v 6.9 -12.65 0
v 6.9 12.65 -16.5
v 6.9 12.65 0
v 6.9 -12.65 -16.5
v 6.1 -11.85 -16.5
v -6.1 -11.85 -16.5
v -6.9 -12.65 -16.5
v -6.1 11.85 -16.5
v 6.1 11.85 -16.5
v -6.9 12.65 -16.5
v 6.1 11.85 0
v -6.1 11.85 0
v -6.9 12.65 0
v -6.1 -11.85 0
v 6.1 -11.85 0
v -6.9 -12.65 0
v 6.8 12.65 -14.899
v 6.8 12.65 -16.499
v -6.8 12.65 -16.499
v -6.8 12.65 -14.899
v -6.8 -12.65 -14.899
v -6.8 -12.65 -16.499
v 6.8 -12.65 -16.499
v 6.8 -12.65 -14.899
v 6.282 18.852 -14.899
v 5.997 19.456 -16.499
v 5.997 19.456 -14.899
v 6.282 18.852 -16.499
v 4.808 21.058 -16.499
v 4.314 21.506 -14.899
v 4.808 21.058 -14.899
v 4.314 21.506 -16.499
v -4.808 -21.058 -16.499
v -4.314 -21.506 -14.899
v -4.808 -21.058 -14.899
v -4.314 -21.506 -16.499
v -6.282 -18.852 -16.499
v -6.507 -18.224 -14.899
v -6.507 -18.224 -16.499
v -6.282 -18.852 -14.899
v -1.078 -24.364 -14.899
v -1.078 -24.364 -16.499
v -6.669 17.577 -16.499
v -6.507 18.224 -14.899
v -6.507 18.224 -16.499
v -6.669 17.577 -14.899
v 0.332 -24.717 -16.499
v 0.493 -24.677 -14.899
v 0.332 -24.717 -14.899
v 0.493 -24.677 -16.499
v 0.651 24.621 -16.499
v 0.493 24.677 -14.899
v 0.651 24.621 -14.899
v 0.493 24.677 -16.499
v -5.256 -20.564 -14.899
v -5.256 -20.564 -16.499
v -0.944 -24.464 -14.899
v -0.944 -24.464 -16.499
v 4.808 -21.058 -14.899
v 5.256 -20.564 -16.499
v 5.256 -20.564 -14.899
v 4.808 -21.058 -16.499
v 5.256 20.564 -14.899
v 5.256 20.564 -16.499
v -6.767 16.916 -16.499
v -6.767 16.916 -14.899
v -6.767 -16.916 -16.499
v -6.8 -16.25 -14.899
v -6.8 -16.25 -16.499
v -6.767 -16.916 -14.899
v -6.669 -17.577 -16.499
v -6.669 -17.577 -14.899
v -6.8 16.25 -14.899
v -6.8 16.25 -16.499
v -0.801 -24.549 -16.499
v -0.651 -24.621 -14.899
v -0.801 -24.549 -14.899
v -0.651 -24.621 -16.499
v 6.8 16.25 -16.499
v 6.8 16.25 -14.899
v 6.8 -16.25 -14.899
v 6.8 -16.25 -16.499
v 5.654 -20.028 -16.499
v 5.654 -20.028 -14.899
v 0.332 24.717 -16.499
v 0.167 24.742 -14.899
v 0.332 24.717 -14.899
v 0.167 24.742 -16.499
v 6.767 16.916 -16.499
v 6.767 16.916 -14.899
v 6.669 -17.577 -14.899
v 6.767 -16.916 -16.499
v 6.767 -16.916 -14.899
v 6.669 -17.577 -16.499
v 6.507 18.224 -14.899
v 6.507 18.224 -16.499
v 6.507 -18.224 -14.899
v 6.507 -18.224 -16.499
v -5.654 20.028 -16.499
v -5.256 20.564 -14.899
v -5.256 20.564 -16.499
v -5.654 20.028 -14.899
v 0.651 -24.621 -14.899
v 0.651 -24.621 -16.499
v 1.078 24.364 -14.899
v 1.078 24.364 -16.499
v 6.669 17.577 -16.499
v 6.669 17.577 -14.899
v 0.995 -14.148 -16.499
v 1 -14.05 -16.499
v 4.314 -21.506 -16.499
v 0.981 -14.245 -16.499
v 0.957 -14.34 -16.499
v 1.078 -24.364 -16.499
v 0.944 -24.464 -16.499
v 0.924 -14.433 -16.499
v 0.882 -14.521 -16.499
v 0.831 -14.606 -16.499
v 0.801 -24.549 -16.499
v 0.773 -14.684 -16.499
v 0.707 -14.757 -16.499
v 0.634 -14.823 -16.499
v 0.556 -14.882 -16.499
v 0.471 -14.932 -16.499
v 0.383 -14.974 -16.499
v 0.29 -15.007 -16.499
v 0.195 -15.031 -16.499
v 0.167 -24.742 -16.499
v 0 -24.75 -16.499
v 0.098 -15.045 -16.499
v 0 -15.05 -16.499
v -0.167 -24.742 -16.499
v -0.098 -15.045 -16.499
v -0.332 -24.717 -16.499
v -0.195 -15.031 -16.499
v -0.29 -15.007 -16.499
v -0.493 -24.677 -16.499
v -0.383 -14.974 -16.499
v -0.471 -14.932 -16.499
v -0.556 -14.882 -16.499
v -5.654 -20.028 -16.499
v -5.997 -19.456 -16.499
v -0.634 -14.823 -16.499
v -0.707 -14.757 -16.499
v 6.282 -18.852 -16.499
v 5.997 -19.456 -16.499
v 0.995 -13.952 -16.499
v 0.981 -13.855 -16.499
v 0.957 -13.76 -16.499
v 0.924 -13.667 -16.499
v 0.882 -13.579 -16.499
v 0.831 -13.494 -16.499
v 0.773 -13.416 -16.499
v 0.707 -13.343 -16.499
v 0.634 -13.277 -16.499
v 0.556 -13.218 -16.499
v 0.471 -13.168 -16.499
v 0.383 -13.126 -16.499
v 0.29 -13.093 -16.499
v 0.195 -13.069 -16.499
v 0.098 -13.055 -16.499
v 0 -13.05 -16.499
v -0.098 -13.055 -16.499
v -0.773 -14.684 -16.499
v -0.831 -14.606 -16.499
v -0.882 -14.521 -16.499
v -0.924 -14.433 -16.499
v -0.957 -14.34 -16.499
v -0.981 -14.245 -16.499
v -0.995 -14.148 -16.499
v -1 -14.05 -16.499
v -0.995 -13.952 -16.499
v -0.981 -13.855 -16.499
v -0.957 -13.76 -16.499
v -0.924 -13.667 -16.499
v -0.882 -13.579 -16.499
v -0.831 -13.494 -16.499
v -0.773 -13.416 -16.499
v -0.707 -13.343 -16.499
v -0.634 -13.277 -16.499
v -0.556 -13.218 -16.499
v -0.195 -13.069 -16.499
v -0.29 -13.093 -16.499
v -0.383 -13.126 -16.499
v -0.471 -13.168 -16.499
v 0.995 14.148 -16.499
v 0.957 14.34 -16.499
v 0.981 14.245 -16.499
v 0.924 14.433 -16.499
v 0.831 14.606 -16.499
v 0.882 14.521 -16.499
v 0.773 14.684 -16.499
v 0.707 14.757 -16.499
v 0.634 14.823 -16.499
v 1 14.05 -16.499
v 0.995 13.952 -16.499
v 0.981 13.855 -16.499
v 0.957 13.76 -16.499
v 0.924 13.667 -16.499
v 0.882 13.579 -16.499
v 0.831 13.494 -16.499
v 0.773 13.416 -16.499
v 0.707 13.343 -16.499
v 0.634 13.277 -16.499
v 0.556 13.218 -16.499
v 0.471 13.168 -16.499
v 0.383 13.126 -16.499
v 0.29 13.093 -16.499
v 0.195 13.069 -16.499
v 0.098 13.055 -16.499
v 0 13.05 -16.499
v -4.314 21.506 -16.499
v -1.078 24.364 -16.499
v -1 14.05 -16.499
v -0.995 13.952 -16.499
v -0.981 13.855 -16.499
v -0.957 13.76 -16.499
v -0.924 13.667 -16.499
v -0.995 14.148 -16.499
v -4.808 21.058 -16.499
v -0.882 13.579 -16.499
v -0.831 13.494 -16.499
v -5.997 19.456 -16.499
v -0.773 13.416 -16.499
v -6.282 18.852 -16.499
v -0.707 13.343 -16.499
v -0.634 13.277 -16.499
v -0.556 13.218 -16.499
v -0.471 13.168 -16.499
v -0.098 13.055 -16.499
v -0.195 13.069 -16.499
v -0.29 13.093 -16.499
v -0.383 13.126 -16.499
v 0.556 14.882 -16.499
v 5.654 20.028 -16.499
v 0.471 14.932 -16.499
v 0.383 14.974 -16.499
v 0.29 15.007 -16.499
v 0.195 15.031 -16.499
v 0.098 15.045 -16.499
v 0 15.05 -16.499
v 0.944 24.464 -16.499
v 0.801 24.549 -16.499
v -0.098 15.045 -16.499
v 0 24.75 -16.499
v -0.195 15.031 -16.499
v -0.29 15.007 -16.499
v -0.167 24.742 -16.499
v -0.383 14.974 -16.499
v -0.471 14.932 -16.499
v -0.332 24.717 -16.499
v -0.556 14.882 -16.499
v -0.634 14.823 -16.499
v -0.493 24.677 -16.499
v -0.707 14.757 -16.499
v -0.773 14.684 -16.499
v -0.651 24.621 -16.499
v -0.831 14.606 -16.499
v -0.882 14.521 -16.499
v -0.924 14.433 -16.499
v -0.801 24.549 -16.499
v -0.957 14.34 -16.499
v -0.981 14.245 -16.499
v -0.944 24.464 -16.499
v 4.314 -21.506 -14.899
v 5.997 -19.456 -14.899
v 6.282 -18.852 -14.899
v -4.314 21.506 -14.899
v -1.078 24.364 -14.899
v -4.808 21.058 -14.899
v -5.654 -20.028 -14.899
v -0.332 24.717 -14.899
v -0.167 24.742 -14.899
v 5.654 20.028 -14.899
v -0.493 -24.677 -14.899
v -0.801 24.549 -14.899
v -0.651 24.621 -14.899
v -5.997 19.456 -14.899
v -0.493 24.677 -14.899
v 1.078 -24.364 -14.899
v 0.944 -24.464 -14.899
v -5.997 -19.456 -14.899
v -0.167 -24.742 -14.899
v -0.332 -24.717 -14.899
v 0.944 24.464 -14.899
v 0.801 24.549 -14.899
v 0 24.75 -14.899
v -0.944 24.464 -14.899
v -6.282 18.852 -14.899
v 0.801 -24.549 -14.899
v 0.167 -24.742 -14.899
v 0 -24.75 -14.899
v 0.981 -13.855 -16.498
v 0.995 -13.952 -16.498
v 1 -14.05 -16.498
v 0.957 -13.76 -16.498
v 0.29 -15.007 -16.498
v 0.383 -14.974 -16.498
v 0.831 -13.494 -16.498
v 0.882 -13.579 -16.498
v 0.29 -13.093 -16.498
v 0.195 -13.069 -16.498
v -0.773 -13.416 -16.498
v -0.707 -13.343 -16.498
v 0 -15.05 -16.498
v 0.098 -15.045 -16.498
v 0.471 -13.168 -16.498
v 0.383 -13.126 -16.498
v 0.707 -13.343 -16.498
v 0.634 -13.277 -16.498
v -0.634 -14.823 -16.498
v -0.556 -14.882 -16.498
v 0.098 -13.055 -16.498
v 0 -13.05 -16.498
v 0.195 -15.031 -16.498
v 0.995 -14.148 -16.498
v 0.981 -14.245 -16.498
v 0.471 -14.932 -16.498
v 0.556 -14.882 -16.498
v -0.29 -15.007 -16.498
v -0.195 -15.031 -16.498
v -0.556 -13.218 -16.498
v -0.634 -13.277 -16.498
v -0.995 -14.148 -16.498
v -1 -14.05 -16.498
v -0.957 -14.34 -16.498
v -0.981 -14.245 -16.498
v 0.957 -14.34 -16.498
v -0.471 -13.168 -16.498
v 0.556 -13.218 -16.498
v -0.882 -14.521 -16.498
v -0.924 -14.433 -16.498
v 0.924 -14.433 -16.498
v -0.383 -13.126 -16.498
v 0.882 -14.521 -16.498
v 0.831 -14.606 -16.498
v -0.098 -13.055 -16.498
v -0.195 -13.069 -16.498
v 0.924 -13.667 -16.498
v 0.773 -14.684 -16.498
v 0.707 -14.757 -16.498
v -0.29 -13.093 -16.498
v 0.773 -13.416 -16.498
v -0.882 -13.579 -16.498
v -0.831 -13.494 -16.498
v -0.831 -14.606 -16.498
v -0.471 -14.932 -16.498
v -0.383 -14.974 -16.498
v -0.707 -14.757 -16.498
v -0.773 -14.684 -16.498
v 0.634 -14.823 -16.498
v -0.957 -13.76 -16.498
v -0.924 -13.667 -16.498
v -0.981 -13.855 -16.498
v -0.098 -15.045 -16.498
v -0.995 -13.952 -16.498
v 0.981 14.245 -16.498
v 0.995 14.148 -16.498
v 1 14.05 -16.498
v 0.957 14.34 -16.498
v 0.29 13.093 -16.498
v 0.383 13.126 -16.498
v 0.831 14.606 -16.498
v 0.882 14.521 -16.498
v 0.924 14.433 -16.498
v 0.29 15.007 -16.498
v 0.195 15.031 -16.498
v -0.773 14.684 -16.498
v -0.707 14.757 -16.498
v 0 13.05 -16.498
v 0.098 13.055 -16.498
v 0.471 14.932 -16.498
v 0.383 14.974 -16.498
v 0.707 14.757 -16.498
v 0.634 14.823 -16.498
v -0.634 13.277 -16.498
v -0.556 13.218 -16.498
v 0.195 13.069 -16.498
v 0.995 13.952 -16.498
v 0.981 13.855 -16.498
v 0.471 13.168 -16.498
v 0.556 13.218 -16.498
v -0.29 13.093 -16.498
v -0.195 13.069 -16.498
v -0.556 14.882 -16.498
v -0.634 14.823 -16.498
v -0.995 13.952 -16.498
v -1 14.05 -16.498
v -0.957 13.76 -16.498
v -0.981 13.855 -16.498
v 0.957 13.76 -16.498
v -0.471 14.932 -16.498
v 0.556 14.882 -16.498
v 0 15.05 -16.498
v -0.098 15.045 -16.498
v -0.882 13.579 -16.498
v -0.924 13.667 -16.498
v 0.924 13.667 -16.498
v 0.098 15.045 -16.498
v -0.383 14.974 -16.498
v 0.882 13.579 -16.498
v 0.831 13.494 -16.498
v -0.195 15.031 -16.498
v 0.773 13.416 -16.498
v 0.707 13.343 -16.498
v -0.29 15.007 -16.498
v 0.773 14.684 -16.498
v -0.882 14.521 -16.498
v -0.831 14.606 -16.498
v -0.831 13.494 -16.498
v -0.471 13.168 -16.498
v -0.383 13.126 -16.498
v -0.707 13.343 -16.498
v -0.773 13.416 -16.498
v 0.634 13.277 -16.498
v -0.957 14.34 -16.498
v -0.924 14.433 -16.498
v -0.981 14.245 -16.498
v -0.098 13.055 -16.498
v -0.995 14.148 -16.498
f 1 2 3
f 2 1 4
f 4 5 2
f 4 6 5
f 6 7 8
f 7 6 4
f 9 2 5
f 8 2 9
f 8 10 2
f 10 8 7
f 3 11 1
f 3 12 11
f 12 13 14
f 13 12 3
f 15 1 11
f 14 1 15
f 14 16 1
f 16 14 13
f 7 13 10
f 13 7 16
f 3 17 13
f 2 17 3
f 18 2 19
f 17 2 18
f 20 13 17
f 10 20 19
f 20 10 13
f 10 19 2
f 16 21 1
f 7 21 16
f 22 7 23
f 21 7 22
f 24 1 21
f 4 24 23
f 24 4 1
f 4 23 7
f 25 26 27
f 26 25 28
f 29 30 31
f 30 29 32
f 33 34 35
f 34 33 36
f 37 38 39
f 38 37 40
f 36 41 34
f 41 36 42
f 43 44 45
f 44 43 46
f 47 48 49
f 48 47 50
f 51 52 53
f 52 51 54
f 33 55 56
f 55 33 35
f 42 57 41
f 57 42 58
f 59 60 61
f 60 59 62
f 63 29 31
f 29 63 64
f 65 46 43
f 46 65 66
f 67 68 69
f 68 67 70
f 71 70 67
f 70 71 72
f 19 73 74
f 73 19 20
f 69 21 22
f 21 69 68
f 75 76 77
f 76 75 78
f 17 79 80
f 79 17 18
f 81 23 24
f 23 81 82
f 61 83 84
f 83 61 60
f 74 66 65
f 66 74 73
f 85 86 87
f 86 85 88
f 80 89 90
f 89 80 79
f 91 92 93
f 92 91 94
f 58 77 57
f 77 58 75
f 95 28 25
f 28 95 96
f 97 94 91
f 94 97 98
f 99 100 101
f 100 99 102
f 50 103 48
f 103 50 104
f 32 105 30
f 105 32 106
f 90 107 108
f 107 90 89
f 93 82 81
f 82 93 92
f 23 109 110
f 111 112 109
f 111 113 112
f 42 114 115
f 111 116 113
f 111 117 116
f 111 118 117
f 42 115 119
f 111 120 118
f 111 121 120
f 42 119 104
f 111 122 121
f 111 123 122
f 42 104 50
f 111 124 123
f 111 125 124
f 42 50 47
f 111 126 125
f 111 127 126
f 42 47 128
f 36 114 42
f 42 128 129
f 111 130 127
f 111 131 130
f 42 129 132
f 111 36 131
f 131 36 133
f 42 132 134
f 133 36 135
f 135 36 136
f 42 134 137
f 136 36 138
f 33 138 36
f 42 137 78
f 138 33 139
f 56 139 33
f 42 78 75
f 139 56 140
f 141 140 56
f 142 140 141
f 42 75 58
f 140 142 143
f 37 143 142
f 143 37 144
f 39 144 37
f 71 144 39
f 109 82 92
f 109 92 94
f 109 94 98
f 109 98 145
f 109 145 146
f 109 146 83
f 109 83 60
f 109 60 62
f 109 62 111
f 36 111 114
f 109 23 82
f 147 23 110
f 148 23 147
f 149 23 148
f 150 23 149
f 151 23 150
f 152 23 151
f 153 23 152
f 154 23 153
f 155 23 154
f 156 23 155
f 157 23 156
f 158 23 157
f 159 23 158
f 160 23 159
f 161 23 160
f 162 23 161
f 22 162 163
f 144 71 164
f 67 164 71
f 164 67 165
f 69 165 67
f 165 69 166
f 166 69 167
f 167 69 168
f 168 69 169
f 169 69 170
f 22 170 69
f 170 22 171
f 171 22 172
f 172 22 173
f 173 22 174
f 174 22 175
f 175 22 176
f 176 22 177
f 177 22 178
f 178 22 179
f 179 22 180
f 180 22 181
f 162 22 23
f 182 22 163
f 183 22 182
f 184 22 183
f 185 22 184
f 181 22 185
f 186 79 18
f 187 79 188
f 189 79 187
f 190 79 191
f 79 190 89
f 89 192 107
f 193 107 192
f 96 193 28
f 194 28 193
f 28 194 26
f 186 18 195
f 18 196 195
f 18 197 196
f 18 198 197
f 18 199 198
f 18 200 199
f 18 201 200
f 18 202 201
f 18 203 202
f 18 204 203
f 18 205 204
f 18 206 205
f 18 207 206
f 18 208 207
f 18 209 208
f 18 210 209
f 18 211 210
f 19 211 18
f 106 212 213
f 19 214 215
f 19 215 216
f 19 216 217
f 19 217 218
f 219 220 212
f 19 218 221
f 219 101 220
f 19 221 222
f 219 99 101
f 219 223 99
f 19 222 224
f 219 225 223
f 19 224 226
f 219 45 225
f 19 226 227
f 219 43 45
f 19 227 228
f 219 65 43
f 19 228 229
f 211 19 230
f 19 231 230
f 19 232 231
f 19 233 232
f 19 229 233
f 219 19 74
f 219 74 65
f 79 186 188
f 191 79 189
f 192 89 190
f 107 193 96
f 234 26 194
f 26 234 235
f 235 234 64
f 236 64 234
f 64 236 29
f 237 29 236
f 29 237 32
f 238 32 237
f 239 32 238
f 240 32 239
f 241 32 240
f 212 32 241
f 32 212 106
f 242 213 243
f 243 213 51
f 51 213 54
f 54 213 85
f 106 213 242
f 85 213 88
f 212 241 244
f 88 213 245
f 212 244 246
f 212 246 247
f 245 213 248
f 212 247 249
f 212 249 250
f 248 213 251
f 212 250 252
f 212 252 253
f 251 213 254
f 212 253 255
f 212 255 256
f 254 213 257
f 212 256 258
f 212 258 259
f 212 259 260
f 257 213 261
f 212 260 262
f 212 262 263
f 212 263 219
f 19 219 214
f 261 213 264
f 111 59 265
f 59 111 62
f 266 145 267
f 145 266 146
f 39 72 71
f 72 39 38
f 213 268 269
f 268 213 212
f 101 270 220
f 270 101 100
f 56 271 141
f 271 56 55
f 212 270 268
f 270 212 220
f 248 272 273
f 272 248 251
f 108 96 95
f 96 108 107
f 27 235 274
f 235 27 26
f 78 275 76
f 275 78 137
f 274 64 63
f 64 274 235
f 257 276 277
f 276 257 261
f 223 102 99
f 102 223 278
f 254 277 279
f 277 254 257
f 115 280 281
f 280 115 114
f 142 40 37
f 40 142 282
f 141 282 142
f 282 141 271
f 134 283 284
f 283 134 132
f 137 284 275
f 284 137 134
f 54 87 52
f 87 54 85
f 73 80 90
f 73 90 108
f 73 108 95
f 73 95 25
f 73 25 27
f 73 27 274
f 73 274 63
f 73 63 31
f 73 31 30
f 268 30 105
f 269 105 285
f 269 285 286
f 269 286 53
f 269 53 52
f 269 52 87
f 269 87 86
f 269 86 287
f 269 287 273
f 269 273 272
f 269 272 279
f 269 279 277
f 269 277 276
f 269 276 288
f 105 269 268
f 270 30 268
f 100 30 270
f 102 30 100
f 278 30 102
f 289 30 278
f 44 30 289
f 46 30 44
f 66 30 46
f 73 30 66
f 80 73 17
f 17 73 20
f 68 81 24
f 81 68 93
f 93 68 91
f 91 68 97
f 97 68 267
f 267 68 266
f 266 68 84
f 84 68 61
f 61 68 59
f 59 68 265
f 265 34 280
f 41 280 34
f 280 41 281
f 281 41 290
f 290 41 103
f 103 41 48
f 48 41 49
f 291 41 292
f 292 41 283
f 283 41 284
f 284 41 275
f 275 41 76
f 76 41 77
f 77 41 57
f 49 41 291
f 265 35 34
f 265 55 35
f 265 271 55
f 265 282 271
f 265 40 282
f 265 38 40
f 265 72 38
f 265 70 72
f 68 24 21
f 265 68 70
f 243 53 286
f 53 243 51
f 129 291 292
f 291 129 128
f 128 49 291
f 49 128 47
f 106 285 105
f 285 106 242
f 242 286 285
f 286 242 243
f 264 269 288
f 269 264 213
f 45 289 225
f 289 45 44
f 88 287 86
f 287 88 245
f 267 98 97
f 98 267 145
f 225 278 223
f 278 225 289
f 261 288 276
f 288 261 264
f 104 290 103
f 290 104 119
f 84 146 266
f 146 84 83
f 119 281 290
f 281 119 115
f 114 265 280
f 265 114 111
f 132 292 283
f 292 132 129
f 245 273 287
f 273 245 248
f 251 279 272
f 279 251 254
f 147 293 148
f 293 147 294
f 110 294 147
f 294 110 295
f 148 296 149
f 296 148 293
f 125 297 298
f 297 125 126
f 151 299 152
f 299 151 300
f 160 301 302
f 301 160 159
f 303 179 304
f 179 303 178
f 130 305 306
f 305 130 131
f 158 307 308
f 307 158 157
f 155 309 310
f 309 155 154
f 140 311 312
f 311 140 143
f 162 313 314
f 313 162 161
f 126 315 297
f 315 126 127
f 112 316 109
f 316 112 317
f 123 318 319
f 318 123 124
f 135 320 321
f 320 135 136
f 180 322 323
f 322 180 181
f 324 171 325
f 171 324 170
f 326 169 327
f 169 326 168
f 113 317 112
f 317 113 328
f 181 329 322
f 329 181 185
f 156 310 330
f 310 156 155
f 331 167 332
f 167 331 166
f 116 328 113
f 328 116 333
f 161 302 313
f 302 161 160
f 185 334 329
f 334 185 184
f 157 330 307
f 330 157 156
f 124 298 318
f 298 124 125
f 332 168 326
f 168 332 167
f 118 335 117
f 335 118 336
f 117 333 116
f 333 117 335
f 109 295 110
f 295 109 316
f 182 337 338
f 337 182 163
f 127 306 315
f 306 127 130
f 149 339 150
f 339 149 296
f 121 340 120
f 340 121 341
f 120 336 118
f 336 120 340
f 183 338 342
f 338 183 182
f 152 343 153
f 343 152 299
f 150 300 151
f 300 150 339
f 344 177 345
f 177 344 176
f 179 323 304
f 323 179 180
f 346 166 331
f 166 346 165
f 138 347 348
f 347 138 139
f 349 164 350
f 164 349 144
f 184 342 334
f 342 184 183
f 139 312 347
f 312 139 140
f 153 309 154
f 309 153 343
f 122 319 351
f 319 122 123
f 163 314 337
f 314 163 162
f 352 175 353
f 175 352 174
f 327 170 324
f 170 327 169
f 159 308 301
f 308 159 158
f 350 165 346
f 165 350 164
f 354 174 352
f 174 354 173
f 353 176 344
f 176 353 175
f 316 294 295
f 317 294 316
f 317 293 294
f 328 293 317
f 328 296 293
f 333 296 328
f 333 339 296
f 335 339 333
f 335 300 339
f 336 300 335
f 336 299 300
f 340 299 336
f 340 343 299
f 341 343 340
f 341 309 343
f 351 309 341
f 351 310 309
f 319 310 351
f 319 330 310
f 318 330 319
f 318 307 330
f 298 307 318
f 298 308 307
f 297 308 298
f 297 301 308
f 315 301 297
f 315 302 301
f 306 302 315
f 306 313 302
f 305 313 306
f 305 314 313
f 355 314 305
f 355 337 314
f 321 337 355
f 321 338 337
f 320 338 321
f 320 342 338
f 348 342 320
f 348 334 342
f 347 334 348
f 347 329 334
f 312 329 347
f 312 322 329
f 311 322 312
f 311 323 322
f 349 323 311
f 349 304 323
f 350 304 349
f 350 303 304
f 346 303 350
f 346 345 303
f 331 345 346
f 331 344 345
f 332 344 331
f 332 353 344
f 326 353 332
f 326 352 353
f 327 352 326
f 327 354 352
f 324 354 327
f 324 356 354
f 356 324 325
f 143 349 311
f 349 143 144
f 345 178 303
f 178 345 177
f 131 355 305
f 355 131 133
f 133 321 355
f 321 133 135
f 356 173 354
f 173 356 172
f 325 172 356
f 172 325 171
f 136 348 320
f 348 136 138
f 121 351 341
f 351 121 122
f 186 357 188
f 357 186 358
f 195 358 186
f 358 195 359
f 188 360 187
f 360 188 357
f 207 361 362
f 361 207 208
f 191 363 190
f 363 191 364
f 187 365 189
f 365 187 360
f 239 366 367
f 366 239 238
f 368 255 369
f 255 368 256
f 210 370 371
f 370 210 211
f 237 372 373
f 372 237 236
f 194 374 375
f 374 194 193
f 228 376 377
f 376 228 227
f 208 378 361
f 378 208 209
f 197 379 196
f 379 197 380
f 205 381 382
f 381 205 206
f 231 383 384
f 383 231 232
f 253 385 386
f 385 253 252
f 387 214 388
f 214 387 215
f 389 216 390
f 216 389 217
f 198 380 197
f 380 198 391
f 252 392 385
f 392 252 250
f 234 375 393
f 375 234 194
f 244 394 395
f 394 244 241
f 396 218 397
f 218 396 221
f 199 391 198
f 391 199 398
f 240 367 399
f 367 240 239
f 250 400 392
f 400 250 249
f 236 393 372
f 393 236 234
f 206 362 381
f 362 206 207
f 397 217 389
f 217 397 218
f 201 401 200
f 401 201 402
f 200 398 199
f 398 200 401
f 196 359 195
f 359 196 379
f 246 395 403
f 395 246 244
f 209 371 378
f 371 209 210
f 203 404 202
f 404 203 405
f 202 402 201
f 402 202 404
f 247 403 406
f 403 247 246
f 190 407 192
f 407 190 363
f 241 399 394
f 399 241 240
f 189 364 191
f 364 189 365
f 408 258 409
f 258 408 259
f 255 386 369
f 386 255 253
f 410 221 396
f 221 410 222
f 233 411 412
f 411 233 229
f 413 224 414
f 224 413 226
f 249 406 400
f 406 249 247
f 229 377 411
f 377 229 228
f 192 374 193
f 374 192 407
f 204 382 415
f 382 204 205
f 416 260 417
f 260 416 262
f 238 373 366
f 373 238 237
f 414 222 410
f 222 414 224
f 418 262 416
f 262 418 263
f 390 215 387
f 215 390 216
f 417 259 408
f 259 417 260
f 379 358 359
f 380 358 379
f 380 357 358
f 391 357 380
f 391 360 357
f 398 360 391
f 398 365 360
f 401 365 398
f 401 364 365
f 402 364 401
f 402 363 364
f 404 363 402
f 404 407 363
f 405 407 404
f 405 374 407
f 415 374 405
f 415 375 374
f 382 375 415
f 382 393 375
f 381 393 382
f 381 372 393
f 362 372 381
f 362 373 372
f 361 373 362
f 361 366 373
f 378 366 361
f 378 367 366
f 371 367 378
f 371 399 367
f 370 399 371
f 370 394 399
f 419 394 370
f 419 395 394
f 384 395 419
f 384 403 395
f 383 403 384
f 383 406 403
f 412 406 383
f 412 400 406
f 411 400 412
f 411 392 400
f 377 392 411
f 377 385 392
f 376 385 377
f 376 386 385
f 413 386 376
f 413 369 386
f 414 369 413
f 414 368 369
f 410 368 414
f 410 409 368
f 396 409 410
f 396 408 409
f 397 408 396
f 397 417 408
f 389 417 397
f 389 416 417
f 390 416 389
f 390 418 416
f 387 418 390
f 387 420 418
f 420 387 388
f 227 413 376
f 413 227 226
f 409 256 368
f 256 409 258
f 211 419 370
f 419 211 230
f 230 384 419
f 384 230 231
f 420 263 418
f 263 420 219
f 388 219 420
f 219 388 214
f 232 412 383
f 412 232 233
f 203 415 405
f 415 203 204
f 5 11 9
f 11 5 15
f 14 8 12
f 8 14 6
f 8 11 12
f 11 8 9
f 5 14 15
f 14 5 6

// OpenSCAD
// file: ../servo_data.scad
SERVO_LENGTH = 1;
SERVO_WIDTH = 2;
SERVO_HEIGHT = 3;
SERVO_TAB_LENGTH = 4;
SERVO_TAB_WIDTH = 5;
SERVO_TAB_THICKNESS = 6;
SERVO_TAB_HEIGHT = 7;
SERVO_MOUNTING_HOLE_OFFSET = 8;
SERVO_MOUNTING_HOLE_DIAMETER = 9;
SERVO_BEARING_CASE_DIAMETER = 10;
SERVO_BEARING_CASE_HEIGHT = 11;
SERVO_GEAR_CASE_DIAMETER = 12;
SERVO_SPLINE_OUTER_DIAMETER = 13;
SERVO_SPLINE_HEIGHT = 14;
SERVO_SPLINE_TEETH = 15;
SERVO_SPLINE_SCREW_DIAMETER = 16;
SERVO_WIRE_THICKNESS = 17;
SERVO_WIRE_OFFSET = 18;

SERVOS = 
[["9180MG", 23.5, 12, 21.0, 32.5, 11, 1.7, 16.5, 1.2, 2, 12, 3.8, 6.0,
  3.7, 3.2, 25, 2.0, 1.0, 0],
 ["MG90S", 22.5, 12, 22.5, 32.5, 12, 2.5, 18.0, 1.2, 2, 12, 6.0, 6.0, 4.8,
  4.1, 20, 2.5, 1.2, 4]];

function search_servos(key) = SERVOS[search([key], SERVOS)[0]];
// file: ../globals.scad
$fn = 64;

// The tolerance of your 3d printer that results in a "tight fit" of two parts.
tolerance = 0.1;

// A small value to be used to offset unions and differences to avoid "z-fighting"
epsilon = 0.001;
// file: ../shapes.scad
// The xy_ variants of shape modules are centered with respect to the X/Y axes and "sit" on te XY plane.

module xy_cube(width, depth, height) {
    translate([0, 0, height / 2])
    cube([width, depth, height], center=true);
}

module xy_cylinder(
    h,
    r, r1, r2,
    d, d1, d2)
{
    translate([0, 0, h / 2])
    cylinder(h=h, r=r, r1=r1, r2=r2, d=d, d1=d1, d2=d2, center=true);
}

// Spreads out its children, spacing them along the x/y/z axis by the given amount.
module spread(x, y, z) {
    for(i = [0 : $children -1 ]) {
        translate([i*x, i*y, i*z])
        children(i);
    }
}

spread(15, 0, 0) {
    xy_cube(10, 10, 10);
    xy_cylinder(10, d=10);
}
// file: ../servos.scad
use <mcad/involute_gears.scad>
use <shapes.scad>

include <globals.scad>
include <servo_data.scad>


module servo_body(data) {
    length = data[SERVO_LENGTH];
    width = data[SERVO_WIDTH];
    height = data[SERVO_HEIGHT];
       
    xy_cube(width, length, height);
}

// Translates (and copies) children to the bottom of the two mounting tab holes relative to the tab location.
module servo_mounting_holes_location(data) {
    length = data[SERVO_TAB_LENGTH];
    height = data[SERVO_TAB_THICKNESS];
    
    hole_radius = data[SERVO_MOUNTING_HOLE_DIAMETER] / 2;
    hole_offset = data[SERVO_MOUNTING_HOLE_OFFSET];
    
    hole_position = (length / 2) - (hole_offset + hole_radius);
    
    for(y = [-1, 1]) {
        translate([0, y * hole_position, 0]) {
            xy_cylinder(h=height + (2 * epsilon), r=hole_radius);
            
            translate([0, 0, height - epsilon])
            children();
        }
    }
}

module servo_mounting_holes(data) {    
    translate([0, 0, -epsilon])
    servo_mounting_holes_location(data) {
        xy_cylinder(
            h=data[SERVO_TAB_THICKNESS] + (2 * epsilon),
            d=data[SERVO_MOUNTING_HOLE_DIAMETER]
        );
        children();
    }
}

// Translates the module's children to the location of the servo tab.
module servo_tab_location(data) {
    translate([0, 0, data[SERVO_TAB_HEIGHT]])
    children();
}

module servo_tab(data, mounting_holes=true) {
    length = data[SERVO_TAB_LENGTH];
    width = data[SERVO_TAB_WIDTH];
    thickness = data[SERVO_TAB_THICKNESS];
           
    difference() {
        xy_cube(width, length, thickness);
        if(mounting_holes) {
            servo_mounting_holes(data);
        }
    }
}

// Returns the x, y, z location of the center bottom of the bearing case.
function servo_bearing_case_position(data) = [
    0,
    (data[SERVO_LENGTH] - data[SERVO_BEARING_CASE_DIAMETER]) / 2,
    data[SERVO_HEIGHT] - epsilon
];

// Returns the x, y, z size of the "bearing case" which is at the top of a servo.
function servo_bearing_case_size(data) = [
    data[SERVO_BEARING_CASE_DIAMETER],
    data[SERVO_BEARING_CASE_DIAMETER] + (data[SERVO_GEAR_CASE_DIAMETER] / 2),
    data[SERVO_BEARING_CASE_HEIGHT]
];

module servo_bearing_case_location(data) {
    translate(servo_bearing_case_position(data))
    children();
}

module servo_bearing_case(data) {
    bearing_case_diameter = data[SERVO_BEARING_CASE_DIAMETER];
    bearing_case_height = data[SERVO_BEARING_CASE_HEIGHT];
    gear_case_diameter = data[SERVO_GEAR_CASE_DIAMETER];
    
    xy_cylinder(h = bearing_case_height, r = bearing_case_diameter / 2);
        
    translate([0, -bearing_case_diameter / 2, 0])
    xy_cylinder(h = bearing_case_height, r = gear_case_diameter / 2);
}


// Returns the x, y, z location of the bottom of the spline.
function servo_spline_position(data) = servo_bearing_case_position(data) + [
    0,
    0,
    data[SERVO_BEARING_CASE_HEIGHT] - epsilon
];

module servo_spline_location(data) {
    translate(servo_spline_position(data))
    children();
}

module servo_spline(data) {     
    diameter = data[SERVO_SPLINE_OUTER_DIAMETER];
    height = data[SERVO_SPLINE_HEIGHT];
    teeth = data[SERVO_SPLINE_TEETH];
    
    gear(
        diametral_pitch = teeth / diameter,
        number_of_teeth = teeth,
        gear_thickness = height,
        hub_thickness = height,
        rim_thickness = height,
        bore_diameter = 0,
        clearance = 0,
        pressure_angle=35
    );
}   

module servo(data) {
    echo("Servo Data:", data);
    
    servo_body(data);
    
    servo_tab_location(data)
    servo_tab(data);
    
    servo_bearing_case_location(data)
    servo_bearing_case(data);
    
    servo_spline_location(data)
    servo_spline(data);
}

// Creates a servo horn, with children positioned on the top.  It is designed to print upside down.
module servo_horn(
    data,
    wall_thickness=1,
    shaft_height=undef,
    screwhead_diameter=undef,
) {
    spline_diameter = data[SERVO_SPLINE_OUTER_DIAMETER];
    diameter = spline_diameter + (wall_thickness * 2);
    
    screw_diameter = data[SERVO_SPLINE_SCREW_DIAMETER];
    bore_diameter = screwhead_diameter == undef ? spline_diameter : screwhead_diameter;

    spline_height = data[SERVO_SPLINE_HEIGHT];
    height = shaft_height == undef ? spline_height + wall_thickness: shaft_height;
    
    // 45 degree transition so can print without overhangs.
    transition_height = (bore_diameter - screw_diameter) / 2;
    
    difference() {
        union() {
            xy_cylinder(h=height, d=diameter);
            translate([0, 0, height - epsilon])
            children();
        }
        
        translate([0, 0, -epsilon]) {
            xy_cylinder(h=height + (epsilon*2), d=screw_diameter);
            servo_spline(data);
            
            translate([0, 0, spline_height])
            xy_cylinder(h=transition_height, d1=screw_diameter, d2=bore_diameter);
            
            translate([0, 0, spline_height + transition_height - epsilon])
            xy_cylinder(h=4000, d=bore_diameter);
        }
    }
    
    
}

module servo_demo(servo_name) {
    data = search_servos(servo_name);
    
    servo(data);
    
    servo_spline_location(data) {
        translate([0, 0, 5])
        servo_horn(data) {
            xy_cylinder(d=15, h=1.5);
        }
    }
    
    translate([20, 0, 0])        
    rotate([0, 0, 90])
    text(data[0], halign="center");       
}

servo_demo("9180MG");    
// file: ../fasteners.scad
use <shapes.scad>

include <globals.scad>

// https://www.engineersedge.com/hardware/_metric_socket_head_cap_screws_14054.htm
module xy_cap_bolt(diameter, length) {
    head_diameter = 1.8 * diameter;
	head_height = diameter;
    
    xy_cylinder(d=head_diameter, h=head_height);
    
    translate([0,0,head_height - epsilon])
    xy_cylinder(d=diameter, h=length);
}

xy_cap_bolt(3, 18);
// file: ../cameras.scad
$fn = 64;

wall_thickness = 1.6;
mount_hole_diameter = 2;

// Creates a mounting arm. Height is the height to the mounting hole.
// height: The height to the mounting hole
// width: How far apart should the mount arms be
module mount_arm(
    height,
    width,
    hole_diameter=mount_hole_diameter) {
    
    translate([wall_thickness / -2, 0, 0])
    difference() {
        union() {
            translate([0, width / -2, 0])
            cube([wall_thickness, width, height]);
        
            translate([0, 0, height])
            rotate([0, 90, 0])
            cylinder(h = wall_thickness, r = width / 2);
        }


        translate([-0.1, 0, height])
        rotate([0, 90, 0])
        cylinder(h=wall_thickness + 0.2, r = hole_diameter / 2);
    }    
}

module base_plate(width, depth) {
    x_length = (width + (wall_thickness * 2));
    
    translate([x_length / -2, depth / -2, 0])
    cube([x_length, depth, wall_thickness]);
}

// height: The height from the base to the mounting holes
// width: Width between two mounting arms
// depth: The width of the mounting arms themselves.
module simple_mount(
    height = 9,
    width = 14,
    depth = 10
) {
    x_length = (width + (wall_thickness));
    
    translate([x_length / -2, 0, wall_thickness])
    mount_arm(height, depth);
   
    translate([x_length / 2, 0, wall_thickness])
    mount_arm(height, depth);
    
    base_plate(width, depth);
}

module camera_enclosure(
    height = 14,
    width = 14,
    depth = 14
) {
    
    difference() {
        
        cube([width + (2 * wall_thickness), height + (2 * wall_thickness), depth], center=true);
        
        translate([0, 0, wall_thickness])
        cube([width, height, depth], center=true);
     
        // Hole for wires, fits a Ph3 connector
        translate([0, 0, (depth / -2) - wall_thickness])
        cylinder(h=depth, r=3);
    }
}

module nano_base_plate() {
    base_plate(14, 10);
}

module nano_mount(height=9) {
    simple_mount(
        height = height,
        width = 14,
        depth = 10
    );
}

nano_mount();
// file: mcad/metric_fastners.scad
/*
 *  OpenSCAD Metric Fastners Library (www.openscad.org)
 *  Copyright (C) 2010-2011  Giles Bathgate
 *
 *  This program is free software; you can redistribute it and/or modify
 *  it under the terms of the GNU General Public License as published by
 *  the Free Software Foundation; either version 3 of the License,
 *  LGPL version 2.1, or (at your option) any later version of the GPL.
 *
 *  This program is distributed in the hope that it will be useful,
 *  but WITHOUT ANY WARRANTY; without even the implied warranty of
 *  MERCHANTABILITY or FITNESS FOR A PARTICULAR PURPOSE.  See the
 *  GNU General Public License for more details.
 *
 *  You should have received a copy of the GNU General Public License
 *  along with this program; if not, write to the Free Software
 *  Foundation, Inc., 59 Temple Place, Suite 330, Boston, MA 02111-1307 USA
 *
*/

$fn=50;
apply_chamfer=true;

module cap_bolt(dia,len)
{
	e=1.5*dia;
	h1=1.25*dia;
	cylinder(r=dia/2,h=len);
	translate([0,0,-h1]) cylinder(r=e/2,h=h1);
}

module csk_bolt(dia,len)
{
	h1=0.6*dia;
	h2=len-h1;
	cylinder(r=dia/2,h=h2);
	cylinder(r1=dia,r2=dia/2,h=h1);
}

module washer(dia)
{
	t=0.1*dia;
	difference()
	{
		cylinder(r=dia,h=t);
		translate([0,0,-t/2])cylinder(r=dia/2,h=t*2);
	}
}

module flat_nut(dia)
{
	m=0.8*dia;
	e=1.8*dia;
	c=0.2*dia;
	difference()
	{
		cylinder(r=e/2,h=m,$fn=6);
		translate([0,0,-m/2])cylinder(r=dia/2,h=m*2);
		if(apply_chamfer)
		    translate([0,0,c])cylinder_chamfer(e/2,c);
	}
}

module bolt(dia,len)
{
	e=1.8*dia;
	k=0.7*dia;
	c=0.2*dia;
	difference()
	{
		cylinder(r=e/2,h=k,$fn=6);
		if(apply_chamfer)
		    translate([0,0,c])cylinder_chamfer(e/2,c);
	}

	cylinder(r=dia/2,h=len);

}

module cylinder_chamfer(r1,r2)
{
	t=r1-r2;
	p=r2*2;
	rotate_extrude()
	difference()
	{
		translate([t,-p])square([p,p]);
		translate([t,0])circle(r2);
	}
}

module chamfer(len,r)
{
	p=r*2;
	linear_extrude(height=len)
	difference()
	{
		square([p,p]);
		circle(r);
	}
}

union()
{
//csk_bolt(3,14);
//washer(3);
//flat_nut(3);
//bolt(4,14);
//cylinder_chamfer(8,1);
//chamfer(10,2);
}
// main file
use <micro_pan.scad>
// The servo to use, select one from servo_data.csv
servo_data = search_servos("9180MG");

mirror([0, 0, 1])
servo_mount(servo_data);
